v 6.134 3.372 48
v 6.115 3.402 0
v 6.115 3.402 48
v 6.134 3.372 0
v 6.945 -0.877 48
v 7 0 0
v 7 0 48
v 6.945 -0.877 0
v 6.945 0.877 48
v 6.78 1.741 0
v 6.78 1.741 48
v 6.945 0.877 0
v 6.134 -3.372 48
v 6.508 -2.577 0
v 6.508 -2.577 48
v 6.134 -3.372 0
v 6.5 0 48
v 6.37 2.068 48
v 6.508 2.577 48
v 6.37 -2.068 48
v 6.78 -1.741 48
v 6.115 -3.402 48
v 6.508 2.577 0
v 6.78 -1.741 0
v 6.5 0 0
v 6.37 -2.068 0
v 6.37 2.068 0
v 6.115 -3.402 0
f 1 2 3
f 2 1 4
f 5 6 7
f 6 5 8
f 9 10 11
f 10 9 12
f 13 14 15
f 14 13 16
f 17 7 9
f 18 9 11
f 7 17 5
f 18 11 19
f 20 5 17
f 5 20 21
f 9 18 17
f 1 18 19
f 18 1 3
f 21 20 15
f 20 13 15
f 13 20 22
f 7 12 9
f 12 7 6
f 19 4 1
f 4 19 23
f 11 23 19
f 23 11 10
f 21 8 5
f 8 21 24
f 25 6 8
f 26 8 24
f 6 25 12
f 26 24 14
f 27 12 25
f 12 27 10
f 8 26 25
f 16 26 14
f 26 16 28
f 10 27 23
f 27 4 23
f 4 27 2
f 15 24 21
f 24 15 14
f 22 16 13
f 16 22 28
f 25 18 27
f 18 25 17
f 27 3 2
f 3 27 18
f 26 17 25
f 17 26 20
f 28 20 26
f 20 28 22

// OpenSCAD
$fn = 50;


difference() {
	union() {
		cylinder(h = 48, r = 7.0000000000);
		translate(v = [-13.0000000000, 0, 0]) {
			cylinder(h = 48, r = 7.0000000000);
		}
	}
	union() {
		cylinder(h = 48, r = 3.2500000000);
		cylinder(h = 48, r = 1.8000000000);
		cylinder(h = 48, r = 1.8000000000);
		cylinder(h = 48, r = 1.8000000000);
		translate(v = [-17.5000000000, 0, 0]) {
			hull() {
				translate(v = [-3.7500000000, 0.0000000000, 0]) {
					cylinder(h = 48, r = 10.5000000000);
				}
				translate(v = [3.7500000000, 0.0000000000, 0]) {
					cylinder(h = 48, r = 10.5000000000);
				}
				translate(v = [-3.7500000000, -0.0000000000, 0]) {
					cylinder(h = 48, r = 10.5000000000);
				}
				translate(v = [3.7500000000, -0.0000000000, 0]) {
					cylinder(h = 48, r = 10.5000000000);
				}
			}
		}
		translate(v = [-10.0000000000, 0, 0.0000000000]) {
			cylinder(h = 48, r = 16.5000000000);
		}
	}
}
